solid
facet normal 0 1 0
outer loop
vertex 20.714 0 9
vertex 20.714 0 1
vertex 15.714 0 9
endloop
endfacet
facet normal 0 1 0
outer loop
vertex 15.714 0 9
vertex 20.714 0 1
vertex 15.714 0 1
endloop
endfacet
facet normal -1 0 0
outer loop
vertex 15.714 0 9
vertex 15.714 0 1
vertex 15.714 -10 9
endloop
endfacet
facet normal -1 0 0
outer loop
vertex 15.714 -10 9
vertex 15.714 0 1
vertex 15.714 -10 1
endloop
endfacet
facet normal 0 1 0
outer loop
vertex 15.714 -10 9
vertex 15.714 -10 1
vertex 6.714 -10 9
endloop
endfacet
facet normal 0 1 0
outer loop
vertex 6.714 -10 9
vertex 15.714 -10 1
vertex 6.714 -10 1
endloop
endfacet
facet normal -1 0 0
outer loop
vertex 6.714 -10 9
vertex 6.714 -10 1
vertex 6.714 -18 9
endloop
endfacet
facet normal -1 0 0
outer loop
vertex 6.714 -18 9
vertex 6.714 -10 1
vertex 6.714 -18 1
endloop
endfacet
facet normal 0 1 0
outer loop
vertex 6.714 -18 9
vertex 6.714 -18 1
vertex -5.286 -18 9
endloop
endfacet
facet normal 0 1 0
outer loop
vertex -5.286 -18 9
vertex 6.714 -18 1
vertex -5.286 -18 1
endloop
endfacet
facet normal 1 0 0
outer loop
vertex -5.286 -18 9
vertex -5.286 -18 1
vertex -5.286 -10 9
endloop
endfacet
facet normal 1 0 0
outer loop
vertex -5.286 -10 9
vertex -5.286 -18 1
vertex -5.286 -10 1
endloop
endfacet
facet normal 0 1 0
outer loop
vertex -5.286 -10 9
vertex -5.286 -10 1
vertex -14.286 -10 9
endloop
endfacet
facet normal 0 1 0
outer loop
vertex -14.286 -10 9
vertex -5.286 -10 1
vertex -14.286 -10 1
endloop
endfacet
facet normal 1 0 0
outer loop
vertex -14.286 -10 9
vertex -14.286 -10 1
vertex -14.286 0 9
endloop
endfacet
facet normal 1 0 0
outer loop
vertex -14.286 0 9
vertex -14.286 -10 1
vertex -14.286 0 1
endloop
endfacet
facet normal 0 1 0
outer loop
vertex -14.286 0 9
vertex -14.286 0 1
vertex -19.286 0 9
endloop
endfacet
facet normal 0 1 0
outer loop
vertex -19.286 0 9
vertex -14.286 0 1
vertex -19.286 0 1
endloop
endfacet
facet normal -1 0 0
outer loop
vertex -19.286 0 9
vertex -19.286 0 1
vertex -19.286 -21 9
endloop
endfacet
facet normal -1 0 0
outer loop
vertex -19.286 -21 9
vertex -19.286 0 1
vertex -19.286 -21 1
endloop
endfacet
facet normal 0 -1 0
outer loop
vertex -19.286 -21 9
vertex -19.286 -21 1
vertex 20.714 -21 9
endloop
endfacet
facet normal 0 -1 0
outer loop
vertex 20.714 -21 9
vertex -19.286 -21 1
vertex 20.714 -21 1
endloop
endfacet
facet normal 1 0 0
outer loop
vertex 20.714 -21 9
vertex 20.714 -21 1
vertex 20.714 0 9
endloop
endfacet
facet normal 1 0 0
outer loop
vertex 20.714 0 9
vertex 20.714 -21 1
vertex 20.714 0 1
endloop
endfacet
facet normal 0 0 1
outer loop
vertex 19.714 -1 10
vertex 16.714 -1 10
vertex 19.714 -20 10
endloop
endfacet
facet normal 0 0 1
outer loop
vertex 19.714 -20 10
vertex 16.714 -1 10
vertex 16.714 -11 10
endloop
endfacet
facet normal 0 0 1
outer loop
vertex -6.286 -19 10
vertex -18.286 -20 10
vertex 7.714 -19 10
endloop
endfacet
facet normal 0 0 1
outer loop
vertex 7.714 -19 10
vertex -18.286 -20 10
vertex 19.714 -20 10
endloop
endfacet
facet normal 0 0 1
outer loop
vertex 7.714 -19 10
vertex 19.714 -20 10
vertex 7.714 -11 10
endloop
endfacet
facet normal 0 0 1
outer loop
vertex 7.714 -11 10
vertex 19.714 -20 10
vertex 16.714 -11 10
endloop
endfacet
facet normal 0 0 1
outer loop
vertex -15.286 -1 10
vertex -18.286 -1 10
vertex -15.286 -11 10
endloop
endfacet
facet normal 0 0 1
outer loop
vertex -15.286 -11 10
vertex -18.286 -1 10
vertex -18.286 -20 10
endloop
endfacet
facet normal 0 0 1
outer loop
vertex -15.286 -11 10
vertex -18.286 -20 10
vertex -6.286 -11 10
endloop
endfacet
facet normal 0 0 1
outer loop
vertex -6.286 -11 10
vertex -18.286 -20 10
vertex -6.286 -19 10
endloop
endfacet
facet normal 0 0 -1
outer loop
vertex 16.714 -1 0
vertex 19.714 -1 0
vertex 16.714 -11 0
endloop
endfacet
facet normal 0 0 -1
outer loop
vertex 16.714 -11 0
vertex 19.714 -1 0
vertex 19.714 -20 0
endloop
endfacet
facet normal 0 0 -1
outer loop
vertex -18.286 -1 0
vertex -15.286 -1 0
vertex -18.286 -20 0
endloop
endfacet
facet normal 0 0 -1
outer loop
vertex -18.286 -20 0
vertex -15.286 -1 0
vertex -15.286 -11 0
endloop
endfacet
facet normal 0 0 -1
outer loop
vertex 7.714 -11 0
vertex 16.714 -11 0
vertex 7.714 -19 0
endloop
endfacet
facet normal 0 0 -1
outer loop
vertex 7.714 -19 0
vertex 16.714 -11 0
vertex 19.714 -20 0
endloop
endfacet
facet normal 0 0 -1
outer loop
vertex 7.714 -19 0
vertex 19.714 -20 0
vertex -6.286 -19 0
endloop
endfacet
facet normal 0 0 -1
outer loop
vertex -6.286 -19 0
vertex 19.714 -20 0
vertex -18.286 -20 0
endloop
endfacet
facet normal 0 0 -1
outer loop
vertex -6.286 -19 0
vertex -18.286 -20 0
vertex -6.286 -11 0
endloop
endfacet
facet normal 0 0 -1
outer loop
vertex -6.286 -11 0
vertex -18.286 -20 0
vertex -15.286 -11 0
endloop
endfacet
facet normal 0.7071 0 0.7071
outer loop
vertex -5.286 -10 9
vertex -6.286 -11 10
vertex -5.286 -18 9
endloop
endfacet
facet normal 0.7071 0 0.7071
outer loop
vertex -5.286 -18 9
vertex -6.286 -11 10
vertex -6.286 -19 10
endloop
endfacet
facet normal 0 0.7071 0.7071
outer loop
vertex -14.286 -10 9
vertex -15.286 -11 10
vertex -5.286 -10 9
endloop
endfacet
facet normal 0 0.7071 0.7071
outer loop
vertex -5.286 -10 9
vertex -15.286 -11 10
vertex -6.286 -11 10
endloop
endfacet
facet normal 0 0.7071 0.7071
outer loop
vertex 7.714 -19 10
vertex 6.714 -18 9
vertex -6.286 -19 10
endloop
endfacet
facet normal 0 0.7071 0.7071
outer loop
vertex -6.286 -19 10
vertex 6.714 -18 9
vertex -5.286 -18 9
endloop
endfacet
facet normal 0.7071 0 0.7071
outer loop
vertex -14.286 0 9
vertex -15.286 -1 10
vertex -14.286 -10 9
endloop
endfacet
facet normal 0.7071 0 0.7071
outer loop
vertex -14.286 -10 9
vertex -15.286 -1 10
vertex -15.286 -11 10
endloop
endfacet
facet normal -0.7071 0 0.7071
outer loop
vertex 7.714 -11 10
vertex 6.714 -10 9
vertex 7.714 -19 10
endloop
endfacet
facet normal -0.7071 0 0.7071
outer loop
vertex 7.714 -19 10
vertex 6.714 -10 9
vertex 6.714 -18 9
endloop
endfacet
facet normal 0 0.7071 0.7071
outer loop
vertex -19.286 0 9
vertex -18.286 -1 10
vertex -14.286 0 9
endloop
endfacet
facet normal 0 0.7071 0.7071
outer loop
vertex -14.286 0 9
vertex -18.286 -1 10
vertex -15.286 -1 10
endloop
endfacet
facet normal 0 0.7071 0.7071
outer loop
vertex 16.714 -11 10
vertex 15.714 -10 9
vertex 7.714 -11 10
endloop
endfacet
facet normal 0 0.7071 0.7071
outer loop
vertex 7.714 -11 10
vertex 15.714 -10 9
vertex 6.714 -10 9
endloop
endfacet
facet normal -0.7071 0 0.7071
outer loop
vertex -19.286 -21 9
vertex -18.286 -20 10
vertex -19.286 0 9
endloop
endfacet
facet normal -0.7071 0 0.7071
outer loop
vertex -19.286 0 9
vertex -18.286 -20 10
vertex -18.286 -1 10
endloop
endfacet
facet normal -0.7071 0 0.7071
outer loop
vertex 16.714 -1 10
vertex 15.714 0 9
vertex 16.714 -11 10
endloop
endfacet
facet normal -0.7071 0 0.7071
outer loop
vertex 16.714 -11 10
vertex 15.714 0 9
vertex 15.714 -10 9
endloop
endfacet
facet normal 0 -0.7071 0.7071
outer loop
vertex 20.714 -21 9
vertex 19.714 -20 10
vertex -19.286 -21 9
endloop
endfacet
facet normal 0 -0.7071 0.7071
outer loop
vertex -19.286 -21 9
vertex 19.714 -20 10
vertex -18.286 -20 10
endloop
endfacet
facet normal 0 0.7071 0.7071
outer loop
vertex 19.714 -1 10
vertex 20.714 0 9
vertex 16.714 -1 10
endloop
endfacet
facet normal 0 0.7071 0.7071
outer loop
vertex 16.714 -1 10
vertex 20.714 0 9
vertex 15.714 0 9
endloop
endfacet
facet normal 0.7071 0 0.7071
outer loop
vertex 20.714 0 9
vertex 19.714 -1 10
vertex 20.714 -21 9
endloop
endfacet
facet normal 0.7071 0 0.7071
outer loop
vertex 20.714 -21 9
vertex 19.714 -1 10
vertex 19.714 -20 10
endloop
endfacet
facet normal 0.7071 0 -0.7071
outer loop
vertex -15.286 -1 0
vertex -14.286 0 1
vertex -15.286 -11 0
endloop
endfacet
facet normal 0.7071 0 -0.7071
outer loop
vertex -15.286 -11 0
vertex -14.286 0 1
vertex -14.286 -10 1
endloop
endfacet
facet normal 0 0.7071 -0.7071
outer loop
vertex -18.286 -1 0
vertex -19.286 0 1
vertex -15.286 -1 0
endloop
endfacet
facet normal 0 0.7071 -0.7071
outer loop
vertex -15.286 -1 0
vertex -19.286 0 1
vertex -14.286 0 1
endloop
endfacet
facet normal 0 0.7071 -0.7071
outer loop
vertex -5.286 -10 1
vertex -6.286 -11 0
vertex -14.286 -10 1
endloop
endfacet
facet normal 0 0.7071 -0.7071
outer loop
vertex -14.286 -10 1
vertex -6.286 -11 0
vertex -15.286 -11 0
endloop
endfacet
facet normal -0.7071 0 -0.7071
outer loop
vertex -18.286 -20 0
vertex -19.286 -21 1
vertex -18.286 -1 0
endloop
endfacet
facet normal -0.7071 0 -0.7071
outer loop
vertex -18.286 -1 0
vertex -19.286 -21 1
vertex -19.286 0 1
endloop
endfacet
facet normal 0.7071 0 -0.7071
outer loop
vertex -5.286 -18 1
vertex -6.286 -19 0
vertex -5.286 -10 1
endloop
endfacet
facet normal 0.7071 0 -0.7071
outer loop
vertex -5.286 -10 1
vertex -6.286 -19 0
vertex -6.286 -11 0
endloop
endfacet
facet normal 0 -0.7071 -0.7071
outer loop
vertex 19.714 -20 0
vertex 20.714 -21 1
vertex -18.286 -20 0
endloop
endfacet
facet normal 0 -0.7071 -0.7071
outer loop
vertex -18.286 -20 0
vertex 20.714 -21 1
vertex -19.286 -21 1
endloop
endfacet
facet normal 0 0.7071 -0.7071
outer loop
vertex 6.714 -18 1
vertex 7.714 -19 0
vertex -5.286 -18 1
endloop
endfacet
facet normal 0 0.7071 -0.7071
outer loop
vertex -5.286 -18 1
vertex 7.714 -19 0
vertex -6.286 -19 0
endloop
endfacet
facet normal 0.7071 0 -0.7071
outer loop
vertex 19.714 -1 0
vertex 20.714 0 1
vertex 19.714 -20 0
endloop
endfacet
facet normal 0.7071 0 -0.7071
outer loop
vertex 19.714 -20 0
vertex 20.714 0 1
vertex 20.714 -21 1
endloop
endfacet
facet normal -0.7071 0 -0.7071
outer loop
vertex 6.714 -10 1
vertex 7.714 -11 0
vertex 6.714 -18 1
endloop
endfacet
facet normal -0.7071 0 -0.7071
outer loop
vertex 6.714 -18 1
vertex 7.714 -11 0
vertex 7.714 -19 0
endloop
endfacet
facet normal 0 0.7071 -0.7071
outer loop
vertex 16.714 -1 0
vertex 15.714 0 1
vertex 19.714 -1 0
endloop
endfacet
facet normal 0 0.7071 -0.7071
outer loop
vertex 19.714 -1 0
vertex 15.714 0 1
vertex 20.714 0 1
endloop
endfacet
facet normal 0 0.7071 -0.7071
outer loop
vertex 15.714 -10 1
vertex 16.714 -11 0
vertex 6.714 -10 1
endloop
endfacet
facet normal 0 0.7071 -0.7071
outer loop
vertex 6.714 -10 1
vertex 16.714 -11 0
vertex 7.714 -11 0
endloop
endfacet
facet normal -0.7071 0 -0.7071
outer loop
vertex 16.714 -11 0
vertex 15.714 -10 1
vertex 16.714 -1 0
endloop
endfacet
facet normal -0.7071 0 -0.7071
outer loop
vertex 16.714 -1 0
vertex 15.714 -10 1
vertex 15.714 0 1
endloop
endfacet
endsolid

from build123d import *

# Parameters (mm, degrees)
BOSS_EXTRUDE1_DEPTH = 10
CHAMFER1_SIZE       = 1


with BuildPart() as part:
    # Sketch1 → Boss-Extrude1 (new body)
    with BuildSketch(Plane.XY):
        Polygon((-14.285879212, 0), (-14.285879212, -10), (-5.285879212, -10), (-5.285879212, -18), (6.714120788, -18), (6.714120788, -10), (15.714120788, -10), (15.714120788, 0), (20.714120788, 0), (20.714120788, -21), (-19.285879212, -21), (-19.285879212, 0), align=None)
    extrude(amount=BOSS_EXTRUDE1_DEPTH)

    # Chamfer1
    chamfer1_edges = [part.edges().sort_by_distance(p)[0] for p in [
        (20.714120788, -10.5, 0),
        (0.714120788, -21, 0),
        (11.214120788, -10, 10),
        (-19.285879212, -10.5, 0),
        (-16.785879212, 0, 0),
        (-14.285879212, -5, 0),
        (-9.785879212, -10, 0),
        (-5.285879212, -14, 0),
        (0.714120788, -18, 0),
        (6.714120788, -14, 0),
        (11.214120788, -10, 0),
        (15.714120788, -5, 0),
        (18.214120788, 0, 0),
        (6.714120788, -14, 10),
        (0.714120788, -18, 10),
        (-5.285879212, -14, 10),
        (-9.785879212, -10, 10),
        (-14.285879212, -5, 10),
        (-16.785879212, 0, 10),
        (-19.285879212, -10.5, 10),
        (0.714120788, -21, 10),
        (20.714120788, -10.5, 10),
        (18.214120788, 0, 10),
        (15.714120788, -5, 10),
    ]]
    chamfer(chamfer1_edges, length=CHAMFER1_SIZE)


solid = part.part
